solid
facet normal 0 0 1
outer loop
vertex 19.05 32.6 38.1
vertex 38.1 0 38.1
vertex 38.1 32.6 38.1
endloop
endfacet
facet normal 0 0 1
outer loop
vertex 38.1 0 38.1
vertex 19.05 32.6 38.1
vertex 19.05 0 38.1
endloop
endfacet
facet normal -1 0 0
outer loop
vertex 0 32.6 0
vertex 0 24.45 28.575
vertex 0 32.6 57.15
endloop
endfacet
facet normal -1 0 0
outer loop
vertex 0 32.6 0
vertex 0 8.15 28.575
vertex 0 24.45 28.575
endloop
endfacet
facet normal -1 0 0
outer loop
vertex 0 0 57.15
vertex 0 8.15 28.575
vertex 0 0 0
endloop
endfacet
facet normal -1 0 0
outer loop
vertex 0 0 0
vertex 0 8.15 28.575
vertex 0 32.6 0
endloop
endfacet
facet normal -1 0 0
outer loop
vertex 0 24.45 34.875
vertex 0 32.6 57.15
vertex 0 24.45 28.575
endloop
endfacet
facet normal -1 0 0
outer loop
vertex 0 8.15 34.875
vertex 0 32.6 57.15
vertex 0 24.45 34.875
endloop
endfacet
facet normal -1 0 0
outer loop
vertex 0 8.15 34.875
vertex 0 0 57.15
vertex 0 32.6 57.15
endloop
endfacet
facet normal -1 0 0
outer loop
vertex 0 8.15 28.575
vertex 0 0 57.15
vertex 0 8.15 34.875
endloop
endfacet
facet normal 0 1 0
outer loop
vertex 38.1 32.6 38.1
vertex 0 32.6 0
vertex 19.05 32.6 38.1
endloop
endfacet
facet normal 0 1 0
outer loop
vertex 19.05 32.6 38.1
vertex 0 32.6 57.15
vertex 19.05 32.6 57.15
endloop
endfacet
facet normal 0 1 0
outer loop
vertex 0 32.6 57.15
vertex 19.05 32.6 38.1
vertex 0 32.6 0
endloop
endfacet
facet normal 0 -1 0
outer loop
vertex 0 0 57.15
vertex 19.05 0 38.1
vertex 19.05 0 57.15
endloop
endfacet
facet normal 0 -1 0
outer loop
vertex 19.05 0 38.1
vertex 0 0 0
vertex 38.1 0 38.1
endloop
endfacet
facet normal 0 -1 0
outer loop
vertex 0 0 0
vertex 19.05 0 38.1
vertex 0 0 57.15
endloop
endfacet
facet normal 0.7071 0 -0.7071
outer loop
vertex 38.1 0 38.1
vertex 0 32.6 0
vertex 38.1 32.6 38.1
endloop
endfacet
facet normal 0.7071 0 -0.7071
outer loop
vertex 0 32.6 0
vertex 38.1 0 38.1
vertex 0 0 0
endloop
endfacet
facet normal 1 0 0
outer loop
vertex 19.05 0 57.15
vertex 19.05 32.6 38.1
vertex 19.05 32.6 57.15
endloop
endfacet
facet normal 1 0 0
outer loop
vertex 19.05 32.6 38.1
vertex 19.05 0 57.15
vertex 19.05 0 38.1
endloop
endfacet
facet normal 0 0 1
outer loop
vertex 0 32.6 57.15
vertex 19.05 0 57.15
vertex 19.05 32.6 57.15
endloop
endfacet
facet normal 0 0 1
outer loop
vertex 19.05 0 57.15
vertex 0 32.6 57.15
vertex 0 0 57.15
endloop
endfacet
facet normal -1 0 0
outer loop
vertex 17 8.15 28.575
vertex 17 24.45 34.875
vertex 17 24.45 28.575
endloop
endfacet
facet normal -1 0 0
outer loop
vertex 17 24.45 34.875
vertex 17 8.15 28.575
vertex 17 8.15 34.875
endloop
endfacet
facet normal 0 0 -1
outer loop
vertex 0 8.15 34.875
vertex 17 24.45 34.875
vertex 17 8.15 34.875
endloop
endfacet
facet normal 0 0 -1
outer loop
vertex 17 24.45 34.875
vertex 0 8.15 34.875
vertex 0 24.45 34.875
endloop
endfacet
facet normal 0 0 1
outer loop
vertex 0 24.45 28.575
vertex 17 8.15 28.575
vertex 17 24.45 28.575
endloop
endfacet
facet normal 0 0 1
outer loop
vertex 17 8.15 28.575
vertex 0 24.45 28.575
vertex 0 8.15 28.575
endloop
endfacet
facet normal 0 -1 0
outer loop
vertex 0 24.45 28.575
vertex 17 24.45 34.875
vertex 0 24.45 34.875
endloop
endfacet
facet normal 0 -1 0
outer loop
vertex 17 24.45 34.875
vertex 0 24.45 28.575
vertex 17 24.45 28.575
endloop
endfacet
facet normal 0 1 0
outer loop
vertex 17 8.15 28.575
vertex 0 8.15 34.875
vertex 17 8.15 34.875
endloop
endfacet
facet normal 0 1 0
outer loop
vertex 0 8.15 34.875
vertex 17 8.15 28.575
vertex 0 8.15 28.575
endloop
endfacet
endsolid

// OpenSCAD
// Shelf bracket extender.
// Mark Harrison, marhar@gmail.com

// One block should be half the total gap between shelf and cabinet.
function inch(x) = x * 25.4;
function block(x) = inch(3/4*x);

// Sized to fit Knape & Vogt 256-ZC shelf clip.
pocket_width = 16.3;
pocket_height = 6.3;
pocket_depth = 17;

dd=pocket_width*2;

module clip_extender() {
    difference() {
        union() {
            translate([0,0,block(2)]) cube([block(1),dd,block(1)]);
            difference() {
                cube([block(2),dd,block(2)]);
                rotate([0,45,0]) cube([block(2),dd,block(3)]);
            }    
        }
        // Pocket for Clip.
        translate([0,pocket_width/2,block(1.5)]) {
            cube([pocket_depth,pocket_width,pocket_height]);
        }
    }
}

clip_extender();
